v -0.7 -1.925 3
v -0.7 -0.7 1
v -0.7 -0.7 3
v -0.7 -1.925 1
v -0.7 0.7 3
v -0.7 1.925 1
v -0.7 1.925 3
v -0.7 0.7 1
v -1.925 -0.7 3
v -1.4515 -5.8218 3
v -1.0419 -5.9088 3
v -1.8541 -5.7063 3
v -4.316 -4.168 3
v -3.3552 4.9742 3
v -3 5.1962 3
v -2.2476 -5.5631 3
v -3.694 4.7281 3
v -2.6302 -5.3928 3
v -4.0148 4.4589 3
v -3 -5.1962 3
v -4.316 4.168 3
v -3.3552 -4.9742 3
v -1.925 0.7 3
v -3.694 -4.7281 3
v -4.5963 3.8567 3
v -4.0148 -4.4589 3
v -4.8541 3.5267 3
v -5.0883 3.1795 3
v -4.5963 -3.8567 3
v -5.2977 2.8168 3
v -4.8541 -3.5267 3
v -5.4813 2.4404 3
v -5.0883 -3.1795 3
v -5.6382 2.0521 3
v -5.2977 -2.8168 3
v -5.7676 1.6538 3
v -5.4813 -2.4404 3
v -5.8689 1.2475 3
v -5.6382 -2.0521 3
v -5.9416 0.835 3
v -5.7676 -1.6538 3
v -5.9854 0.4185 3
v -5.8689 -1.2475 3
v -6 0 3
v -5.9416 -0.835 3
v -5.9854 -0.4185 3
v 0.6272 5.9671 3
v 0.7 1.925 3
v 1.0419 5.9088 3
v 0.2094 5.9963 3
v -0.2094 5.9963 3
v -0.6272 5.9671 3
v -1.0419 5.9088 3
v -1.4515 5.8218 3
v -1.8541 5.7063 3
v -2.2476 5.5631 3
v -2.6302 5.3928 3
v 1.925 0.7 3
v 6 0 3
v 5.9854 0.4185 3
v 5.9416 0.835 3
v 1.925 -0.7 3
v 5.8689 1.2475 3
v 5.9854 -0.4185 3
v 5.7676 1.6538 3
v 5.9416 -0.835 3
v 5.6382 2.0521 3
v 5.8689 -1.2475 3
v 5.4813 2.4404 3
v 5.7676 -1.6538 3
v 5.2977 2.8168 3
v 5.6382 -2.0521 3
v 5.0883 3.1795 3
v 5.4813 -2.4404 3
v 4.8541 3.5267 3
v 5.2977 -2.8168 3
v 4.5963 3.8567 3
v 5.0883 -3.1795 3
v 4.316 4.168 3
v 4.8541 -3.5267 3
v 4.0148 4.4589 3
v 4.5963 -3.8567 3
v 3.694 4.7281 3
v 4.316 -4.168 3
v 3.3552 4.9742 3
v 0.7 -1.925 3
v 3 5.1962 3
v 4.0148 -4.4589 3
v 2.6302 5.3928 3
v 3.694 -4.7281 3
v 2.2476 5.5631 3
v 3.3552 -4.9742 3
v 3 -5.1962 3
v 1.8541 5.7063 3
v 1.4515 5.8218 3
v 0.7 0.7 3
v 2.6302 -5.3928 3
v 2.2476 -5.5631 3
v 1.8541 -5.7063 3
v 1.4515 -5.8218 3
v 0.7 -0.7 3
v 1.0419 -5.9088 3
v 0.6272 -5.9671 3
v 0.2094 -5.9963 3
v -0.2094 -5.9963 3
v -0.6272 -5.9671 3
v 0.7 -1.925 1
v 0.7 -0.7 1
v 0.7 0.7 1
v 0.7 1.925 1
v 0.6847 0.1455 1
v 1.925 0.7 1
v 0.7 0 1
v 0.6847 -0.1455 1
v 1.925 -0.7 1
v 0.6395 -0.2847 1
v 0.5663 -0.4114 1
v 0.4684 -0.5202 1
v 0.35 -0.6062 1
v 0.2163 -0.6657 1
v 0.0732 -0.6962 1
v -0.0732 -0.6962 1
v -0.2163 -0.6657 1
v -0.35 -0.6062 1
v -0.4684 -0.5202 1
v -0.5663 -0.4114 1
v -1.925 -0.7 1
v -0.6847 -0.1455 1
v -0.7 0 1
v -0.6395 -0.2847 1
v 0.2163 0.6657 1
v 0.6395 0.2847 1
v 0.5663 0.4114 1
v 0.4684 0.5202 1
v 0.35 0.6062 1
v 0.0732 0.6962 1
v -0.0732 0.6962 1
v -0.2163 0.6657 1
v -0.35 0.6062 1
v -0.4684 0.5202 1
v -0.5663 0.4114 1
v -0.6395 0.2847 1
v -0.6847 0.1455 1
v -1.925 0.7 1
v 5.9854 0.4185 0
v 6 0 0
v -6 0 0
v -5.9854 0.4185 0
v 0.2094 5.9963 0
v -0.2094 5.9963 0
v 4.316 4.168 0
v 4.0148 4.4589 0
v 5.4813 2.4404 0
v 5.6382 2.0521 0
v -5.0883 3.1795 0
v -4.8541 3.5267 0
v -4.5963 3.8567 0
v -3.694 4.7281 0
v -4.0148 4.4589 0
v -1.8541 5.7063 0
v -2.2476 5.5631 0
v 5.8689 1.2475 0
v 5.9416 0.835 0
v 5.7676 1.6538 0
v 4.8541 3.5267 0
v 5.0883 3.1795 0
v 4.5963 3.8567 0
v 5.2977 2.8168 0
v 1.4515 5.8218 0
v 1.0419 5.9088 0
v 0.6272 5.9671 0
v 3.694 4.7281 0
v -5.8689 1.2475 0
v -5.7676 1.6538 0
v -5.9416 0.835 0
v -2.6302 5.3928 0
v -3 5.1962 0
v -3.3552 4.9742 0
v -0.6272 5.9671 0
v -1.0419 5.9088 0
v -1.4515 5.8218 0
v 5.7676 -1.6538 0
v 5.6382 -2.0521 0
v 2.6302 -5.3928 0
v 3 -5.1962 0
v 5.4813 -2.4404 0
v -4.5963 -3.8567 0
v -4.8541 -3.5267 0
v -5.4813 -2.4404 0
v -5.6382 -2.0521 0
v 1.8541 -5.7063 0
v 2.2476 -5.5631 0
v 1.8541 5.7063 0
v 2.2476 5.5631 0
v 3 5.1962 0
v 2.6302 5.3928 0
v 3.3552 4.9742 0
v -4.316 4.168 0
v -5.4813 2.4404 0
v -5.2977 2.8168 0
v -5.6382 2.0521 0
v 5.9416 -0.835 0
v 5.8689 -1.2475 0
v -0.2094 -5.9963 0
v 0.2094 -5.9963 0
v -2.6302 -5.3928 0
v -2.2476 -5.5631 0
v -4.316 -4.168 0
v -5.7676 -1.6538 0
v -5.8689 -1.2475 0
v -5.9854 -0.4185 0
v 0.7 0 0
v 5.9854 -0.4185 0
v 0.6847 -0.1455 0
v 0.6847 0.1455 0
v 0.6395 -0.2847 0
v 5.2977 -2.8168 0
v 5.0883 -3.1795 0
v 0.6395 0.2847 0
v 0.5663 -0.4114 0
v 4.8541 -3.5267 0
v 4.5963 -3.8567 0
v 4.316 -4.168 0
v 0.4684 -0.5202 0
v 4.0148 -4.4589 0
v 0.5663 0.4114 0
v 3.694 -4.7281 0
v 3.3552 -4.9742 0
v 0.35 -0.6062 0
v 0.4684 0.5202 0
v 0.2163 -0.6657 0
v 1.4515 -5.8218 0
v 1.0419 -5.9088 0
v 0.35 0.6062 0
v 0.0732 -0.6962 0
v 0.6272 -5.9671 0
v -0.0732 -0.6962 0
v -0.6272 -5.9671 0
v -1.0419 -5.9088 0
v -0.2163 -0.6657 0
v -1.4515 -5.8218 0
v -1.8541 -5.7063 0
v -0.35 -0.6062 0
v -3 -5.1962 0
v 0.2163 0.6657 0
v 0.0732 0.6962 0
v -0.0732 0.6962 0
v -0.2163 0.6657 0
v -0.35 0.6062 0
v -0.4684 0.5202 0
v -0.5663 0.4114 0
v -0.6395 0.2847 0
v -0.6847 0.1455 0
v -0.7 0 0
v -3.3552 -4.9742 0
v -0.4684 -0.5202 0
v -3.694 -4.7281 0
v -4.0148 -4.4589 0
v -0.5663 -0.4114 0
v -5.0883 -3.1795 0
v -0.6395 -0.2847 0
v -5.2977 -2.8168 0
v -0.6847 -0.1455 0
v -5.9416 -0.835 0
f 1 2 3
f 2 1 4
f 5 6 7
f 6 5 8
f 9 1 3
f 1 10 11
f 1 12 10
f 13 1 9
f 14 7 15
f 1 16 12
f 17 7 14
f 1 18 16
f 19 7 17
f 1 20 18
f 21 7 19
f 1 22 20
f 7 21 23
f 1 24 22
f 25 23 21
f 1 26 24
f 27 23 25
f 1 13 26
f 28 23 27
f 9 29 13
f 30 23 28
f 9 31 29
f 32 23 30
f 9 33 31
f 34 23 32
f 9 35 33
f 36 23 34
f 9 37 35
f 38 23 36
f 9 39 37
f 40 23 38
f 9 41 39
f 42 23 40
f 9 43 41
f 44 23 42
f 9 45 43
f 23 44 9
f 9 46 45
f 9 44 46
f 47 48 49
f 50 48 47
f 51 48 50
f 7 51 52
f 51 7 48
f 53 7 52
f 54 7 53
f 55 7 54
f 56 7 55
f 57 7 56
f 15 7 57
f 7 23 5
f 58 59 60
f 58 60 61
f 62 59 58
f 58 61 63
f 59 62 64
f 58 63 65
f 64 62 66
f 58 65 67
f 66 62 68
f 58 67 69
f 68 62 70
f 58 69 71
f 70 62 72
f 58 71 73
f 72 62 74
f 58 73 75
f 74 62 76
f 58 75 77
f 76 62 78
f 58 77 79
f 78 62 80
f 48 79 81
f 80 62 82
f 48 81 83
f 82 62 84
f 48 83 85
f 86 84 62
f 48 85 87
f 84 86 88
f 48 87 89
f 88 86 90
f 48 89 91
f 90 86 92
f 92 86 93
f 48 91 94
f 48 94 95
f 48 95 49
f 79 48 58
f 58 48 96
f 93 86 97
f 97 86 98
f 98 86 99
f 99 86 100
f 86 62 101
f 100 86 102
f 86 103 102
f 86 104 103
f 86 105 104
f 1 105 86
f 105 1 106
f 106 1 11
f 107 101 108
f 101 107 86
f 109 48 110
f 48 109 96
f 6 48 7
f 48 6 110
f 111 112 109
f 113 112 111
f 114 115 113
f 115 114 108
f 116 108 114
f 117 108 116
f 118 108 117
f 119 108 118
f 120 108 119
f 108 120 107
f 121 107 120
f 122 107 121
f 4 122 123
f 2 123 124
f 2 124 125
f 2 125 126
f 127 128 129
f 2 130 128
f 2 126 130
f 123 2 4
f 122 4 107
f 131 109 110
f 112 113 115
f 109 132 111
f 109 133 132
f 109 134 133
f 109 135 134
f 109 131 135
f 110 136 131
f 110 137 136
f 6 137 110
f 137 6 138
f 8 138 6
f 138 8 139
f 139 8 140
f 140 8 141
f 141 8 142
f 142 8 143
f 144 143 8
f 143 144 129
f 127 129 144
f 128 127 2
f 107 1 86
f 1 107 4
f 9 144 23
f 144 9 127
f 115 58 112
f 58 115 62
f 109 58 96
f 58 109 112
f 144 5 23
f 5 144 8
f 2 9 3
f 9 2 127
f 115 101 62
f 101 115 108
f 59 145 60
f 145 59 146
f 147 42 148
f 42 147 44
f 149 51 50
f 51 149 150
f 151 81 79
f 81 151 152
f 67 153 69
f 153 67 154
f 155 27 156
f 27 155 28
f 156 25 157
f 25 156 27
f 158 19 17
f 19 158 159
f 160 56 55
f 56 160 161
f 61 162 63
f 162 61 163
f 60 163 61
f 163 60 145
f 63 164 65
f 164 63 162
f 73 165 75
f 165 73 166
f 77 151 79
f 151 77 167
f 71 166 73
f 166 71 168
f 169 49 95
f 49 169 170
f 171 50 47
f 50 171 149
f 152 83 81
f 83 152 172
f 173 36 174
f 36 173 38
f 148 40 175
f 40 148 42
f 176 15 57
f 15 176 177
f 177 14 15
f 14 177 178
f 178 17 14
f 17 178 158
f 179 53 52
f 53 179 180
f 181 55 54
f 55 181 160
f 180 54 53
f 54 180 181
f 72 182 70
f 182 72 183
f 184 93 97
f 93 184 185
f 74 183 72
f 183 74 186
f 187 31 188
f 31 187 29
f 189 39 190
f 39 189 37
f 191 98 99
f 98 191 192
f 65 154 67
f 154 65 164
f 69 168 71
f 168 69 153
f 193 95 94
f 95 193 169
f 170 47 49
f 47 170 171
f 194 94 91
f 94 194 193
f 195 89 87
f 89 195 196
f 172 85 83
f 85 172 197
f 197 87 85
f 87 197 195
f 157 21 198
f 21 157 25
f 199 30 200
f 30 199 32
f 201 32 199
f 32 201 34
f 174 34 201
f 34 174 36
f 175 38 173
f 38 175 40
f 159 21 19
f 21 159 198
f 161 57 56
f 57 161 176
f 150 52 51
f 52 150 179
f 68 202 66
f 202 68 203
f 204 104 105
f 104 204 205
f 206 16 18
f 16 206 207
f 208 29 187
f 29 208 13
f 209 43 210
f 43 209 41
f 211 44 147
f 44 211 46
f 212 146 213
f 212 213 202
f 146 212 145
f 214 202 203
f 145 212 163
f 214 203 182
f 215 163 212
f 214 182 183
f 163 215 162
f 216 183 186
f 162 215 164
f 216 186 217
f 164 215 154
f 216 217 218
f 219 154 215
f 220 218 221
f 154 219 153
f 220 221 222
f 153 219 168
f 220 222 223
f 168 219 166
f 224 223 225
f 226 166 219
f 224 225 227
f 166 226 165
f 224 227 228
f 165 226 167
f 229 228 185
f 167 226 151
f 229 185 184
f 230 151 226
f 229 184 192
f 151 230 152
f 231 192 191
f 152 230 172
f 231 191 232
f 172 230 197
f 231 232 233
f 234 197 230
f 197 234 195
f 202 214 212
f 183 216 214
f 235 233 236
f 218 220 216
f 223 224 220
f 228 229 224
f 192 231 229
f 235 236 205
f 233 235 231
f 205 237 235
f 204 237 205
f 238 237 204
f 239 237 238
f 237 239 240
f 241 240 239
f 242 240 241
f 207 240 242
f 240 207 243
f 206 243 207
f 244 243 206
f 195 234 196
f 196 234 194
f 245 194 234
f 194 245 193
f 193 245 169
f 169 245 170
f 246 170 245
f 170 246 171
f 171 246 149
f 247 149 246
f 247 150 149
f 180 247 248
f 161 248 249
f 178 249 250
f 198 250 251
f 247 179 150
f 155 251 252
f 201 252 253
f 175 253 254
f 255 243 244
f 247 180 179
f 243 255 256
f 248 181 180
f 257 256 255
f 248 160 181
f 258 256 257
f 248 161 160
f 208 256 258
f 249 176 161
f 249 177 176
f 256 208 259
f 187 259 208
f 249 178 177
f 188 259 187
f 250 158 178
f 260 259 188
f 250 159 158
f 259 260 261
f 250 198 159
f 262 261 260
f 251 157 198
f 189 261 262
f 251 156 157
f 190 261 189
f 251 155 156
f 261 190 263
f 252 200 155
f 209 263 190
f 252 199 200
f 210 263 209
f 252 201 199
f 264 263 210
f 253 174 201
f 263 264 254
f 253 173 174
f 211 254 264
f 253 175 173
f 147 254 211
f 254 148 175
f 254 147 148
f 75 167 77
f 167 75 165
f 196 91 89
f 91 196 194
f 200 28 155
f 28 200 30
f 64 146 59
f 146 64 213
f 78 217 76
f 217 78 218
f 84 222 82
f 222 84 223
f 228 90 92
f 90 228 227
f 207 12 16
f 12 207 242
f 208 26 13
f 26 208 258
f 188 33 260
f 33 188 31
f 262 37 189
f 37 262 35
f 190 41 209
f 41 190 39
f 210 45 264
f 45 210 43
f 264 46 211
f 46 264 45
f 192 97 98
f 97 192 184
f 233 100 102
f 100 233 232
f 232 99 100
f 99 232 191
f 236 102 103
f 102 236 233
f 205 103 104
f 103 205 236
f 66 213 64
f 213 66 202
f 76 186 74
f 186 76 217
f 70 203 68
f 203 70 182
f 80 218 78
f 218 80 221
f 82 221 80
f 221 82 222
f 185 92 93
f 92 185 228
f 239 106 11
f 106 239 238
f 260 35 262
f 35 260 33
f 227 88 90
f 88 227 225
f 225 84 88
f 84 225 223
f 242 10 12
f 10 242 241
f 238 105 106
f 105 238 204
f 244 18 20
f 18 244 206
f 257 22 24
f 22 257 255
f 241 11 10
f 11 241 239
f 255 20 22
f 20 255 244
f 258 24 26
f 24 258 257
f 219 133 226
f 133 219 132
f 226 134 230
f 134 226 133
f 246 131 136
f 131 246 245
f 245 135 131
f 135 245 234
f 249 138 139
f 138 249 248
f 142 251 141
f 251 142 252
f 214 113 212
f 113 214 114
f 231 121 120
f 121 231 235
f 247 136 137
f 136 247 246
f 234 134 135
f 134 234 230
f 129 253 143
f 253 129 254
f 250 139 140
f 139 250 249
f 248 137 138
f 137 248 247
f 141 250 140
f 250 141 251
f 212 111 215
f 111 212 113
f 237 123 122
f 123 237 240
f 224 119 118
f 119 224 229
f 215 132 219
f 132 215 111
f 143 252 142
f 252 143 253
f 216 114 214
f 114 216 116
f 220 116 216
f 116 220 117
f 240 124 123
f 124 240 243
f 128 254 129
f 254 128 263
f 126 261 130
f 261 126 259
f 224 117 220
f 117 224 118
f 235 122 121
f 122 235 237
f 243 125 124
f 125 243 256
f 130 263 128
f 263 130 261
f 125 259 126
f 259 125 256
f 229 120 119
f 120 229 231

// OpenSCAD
difference(){
    thickness=3;
    //Main outer wheel
    cylinder(r=6, h=thickness,$fn=90);
    
    //pin in the middle
    cylinder(r=0.7, h=thickness, $fn=30);
    
    //crosspieces
    //todo 2 is a guess
    hole_depth = 2;
    translate([0,0,thickness-(hole_depth/2)]){
        cube([1.4, 3.85, hole_depth], center=true);
        cube([3.85, 1.4, hole_depth], center=true);
    }
}
    
